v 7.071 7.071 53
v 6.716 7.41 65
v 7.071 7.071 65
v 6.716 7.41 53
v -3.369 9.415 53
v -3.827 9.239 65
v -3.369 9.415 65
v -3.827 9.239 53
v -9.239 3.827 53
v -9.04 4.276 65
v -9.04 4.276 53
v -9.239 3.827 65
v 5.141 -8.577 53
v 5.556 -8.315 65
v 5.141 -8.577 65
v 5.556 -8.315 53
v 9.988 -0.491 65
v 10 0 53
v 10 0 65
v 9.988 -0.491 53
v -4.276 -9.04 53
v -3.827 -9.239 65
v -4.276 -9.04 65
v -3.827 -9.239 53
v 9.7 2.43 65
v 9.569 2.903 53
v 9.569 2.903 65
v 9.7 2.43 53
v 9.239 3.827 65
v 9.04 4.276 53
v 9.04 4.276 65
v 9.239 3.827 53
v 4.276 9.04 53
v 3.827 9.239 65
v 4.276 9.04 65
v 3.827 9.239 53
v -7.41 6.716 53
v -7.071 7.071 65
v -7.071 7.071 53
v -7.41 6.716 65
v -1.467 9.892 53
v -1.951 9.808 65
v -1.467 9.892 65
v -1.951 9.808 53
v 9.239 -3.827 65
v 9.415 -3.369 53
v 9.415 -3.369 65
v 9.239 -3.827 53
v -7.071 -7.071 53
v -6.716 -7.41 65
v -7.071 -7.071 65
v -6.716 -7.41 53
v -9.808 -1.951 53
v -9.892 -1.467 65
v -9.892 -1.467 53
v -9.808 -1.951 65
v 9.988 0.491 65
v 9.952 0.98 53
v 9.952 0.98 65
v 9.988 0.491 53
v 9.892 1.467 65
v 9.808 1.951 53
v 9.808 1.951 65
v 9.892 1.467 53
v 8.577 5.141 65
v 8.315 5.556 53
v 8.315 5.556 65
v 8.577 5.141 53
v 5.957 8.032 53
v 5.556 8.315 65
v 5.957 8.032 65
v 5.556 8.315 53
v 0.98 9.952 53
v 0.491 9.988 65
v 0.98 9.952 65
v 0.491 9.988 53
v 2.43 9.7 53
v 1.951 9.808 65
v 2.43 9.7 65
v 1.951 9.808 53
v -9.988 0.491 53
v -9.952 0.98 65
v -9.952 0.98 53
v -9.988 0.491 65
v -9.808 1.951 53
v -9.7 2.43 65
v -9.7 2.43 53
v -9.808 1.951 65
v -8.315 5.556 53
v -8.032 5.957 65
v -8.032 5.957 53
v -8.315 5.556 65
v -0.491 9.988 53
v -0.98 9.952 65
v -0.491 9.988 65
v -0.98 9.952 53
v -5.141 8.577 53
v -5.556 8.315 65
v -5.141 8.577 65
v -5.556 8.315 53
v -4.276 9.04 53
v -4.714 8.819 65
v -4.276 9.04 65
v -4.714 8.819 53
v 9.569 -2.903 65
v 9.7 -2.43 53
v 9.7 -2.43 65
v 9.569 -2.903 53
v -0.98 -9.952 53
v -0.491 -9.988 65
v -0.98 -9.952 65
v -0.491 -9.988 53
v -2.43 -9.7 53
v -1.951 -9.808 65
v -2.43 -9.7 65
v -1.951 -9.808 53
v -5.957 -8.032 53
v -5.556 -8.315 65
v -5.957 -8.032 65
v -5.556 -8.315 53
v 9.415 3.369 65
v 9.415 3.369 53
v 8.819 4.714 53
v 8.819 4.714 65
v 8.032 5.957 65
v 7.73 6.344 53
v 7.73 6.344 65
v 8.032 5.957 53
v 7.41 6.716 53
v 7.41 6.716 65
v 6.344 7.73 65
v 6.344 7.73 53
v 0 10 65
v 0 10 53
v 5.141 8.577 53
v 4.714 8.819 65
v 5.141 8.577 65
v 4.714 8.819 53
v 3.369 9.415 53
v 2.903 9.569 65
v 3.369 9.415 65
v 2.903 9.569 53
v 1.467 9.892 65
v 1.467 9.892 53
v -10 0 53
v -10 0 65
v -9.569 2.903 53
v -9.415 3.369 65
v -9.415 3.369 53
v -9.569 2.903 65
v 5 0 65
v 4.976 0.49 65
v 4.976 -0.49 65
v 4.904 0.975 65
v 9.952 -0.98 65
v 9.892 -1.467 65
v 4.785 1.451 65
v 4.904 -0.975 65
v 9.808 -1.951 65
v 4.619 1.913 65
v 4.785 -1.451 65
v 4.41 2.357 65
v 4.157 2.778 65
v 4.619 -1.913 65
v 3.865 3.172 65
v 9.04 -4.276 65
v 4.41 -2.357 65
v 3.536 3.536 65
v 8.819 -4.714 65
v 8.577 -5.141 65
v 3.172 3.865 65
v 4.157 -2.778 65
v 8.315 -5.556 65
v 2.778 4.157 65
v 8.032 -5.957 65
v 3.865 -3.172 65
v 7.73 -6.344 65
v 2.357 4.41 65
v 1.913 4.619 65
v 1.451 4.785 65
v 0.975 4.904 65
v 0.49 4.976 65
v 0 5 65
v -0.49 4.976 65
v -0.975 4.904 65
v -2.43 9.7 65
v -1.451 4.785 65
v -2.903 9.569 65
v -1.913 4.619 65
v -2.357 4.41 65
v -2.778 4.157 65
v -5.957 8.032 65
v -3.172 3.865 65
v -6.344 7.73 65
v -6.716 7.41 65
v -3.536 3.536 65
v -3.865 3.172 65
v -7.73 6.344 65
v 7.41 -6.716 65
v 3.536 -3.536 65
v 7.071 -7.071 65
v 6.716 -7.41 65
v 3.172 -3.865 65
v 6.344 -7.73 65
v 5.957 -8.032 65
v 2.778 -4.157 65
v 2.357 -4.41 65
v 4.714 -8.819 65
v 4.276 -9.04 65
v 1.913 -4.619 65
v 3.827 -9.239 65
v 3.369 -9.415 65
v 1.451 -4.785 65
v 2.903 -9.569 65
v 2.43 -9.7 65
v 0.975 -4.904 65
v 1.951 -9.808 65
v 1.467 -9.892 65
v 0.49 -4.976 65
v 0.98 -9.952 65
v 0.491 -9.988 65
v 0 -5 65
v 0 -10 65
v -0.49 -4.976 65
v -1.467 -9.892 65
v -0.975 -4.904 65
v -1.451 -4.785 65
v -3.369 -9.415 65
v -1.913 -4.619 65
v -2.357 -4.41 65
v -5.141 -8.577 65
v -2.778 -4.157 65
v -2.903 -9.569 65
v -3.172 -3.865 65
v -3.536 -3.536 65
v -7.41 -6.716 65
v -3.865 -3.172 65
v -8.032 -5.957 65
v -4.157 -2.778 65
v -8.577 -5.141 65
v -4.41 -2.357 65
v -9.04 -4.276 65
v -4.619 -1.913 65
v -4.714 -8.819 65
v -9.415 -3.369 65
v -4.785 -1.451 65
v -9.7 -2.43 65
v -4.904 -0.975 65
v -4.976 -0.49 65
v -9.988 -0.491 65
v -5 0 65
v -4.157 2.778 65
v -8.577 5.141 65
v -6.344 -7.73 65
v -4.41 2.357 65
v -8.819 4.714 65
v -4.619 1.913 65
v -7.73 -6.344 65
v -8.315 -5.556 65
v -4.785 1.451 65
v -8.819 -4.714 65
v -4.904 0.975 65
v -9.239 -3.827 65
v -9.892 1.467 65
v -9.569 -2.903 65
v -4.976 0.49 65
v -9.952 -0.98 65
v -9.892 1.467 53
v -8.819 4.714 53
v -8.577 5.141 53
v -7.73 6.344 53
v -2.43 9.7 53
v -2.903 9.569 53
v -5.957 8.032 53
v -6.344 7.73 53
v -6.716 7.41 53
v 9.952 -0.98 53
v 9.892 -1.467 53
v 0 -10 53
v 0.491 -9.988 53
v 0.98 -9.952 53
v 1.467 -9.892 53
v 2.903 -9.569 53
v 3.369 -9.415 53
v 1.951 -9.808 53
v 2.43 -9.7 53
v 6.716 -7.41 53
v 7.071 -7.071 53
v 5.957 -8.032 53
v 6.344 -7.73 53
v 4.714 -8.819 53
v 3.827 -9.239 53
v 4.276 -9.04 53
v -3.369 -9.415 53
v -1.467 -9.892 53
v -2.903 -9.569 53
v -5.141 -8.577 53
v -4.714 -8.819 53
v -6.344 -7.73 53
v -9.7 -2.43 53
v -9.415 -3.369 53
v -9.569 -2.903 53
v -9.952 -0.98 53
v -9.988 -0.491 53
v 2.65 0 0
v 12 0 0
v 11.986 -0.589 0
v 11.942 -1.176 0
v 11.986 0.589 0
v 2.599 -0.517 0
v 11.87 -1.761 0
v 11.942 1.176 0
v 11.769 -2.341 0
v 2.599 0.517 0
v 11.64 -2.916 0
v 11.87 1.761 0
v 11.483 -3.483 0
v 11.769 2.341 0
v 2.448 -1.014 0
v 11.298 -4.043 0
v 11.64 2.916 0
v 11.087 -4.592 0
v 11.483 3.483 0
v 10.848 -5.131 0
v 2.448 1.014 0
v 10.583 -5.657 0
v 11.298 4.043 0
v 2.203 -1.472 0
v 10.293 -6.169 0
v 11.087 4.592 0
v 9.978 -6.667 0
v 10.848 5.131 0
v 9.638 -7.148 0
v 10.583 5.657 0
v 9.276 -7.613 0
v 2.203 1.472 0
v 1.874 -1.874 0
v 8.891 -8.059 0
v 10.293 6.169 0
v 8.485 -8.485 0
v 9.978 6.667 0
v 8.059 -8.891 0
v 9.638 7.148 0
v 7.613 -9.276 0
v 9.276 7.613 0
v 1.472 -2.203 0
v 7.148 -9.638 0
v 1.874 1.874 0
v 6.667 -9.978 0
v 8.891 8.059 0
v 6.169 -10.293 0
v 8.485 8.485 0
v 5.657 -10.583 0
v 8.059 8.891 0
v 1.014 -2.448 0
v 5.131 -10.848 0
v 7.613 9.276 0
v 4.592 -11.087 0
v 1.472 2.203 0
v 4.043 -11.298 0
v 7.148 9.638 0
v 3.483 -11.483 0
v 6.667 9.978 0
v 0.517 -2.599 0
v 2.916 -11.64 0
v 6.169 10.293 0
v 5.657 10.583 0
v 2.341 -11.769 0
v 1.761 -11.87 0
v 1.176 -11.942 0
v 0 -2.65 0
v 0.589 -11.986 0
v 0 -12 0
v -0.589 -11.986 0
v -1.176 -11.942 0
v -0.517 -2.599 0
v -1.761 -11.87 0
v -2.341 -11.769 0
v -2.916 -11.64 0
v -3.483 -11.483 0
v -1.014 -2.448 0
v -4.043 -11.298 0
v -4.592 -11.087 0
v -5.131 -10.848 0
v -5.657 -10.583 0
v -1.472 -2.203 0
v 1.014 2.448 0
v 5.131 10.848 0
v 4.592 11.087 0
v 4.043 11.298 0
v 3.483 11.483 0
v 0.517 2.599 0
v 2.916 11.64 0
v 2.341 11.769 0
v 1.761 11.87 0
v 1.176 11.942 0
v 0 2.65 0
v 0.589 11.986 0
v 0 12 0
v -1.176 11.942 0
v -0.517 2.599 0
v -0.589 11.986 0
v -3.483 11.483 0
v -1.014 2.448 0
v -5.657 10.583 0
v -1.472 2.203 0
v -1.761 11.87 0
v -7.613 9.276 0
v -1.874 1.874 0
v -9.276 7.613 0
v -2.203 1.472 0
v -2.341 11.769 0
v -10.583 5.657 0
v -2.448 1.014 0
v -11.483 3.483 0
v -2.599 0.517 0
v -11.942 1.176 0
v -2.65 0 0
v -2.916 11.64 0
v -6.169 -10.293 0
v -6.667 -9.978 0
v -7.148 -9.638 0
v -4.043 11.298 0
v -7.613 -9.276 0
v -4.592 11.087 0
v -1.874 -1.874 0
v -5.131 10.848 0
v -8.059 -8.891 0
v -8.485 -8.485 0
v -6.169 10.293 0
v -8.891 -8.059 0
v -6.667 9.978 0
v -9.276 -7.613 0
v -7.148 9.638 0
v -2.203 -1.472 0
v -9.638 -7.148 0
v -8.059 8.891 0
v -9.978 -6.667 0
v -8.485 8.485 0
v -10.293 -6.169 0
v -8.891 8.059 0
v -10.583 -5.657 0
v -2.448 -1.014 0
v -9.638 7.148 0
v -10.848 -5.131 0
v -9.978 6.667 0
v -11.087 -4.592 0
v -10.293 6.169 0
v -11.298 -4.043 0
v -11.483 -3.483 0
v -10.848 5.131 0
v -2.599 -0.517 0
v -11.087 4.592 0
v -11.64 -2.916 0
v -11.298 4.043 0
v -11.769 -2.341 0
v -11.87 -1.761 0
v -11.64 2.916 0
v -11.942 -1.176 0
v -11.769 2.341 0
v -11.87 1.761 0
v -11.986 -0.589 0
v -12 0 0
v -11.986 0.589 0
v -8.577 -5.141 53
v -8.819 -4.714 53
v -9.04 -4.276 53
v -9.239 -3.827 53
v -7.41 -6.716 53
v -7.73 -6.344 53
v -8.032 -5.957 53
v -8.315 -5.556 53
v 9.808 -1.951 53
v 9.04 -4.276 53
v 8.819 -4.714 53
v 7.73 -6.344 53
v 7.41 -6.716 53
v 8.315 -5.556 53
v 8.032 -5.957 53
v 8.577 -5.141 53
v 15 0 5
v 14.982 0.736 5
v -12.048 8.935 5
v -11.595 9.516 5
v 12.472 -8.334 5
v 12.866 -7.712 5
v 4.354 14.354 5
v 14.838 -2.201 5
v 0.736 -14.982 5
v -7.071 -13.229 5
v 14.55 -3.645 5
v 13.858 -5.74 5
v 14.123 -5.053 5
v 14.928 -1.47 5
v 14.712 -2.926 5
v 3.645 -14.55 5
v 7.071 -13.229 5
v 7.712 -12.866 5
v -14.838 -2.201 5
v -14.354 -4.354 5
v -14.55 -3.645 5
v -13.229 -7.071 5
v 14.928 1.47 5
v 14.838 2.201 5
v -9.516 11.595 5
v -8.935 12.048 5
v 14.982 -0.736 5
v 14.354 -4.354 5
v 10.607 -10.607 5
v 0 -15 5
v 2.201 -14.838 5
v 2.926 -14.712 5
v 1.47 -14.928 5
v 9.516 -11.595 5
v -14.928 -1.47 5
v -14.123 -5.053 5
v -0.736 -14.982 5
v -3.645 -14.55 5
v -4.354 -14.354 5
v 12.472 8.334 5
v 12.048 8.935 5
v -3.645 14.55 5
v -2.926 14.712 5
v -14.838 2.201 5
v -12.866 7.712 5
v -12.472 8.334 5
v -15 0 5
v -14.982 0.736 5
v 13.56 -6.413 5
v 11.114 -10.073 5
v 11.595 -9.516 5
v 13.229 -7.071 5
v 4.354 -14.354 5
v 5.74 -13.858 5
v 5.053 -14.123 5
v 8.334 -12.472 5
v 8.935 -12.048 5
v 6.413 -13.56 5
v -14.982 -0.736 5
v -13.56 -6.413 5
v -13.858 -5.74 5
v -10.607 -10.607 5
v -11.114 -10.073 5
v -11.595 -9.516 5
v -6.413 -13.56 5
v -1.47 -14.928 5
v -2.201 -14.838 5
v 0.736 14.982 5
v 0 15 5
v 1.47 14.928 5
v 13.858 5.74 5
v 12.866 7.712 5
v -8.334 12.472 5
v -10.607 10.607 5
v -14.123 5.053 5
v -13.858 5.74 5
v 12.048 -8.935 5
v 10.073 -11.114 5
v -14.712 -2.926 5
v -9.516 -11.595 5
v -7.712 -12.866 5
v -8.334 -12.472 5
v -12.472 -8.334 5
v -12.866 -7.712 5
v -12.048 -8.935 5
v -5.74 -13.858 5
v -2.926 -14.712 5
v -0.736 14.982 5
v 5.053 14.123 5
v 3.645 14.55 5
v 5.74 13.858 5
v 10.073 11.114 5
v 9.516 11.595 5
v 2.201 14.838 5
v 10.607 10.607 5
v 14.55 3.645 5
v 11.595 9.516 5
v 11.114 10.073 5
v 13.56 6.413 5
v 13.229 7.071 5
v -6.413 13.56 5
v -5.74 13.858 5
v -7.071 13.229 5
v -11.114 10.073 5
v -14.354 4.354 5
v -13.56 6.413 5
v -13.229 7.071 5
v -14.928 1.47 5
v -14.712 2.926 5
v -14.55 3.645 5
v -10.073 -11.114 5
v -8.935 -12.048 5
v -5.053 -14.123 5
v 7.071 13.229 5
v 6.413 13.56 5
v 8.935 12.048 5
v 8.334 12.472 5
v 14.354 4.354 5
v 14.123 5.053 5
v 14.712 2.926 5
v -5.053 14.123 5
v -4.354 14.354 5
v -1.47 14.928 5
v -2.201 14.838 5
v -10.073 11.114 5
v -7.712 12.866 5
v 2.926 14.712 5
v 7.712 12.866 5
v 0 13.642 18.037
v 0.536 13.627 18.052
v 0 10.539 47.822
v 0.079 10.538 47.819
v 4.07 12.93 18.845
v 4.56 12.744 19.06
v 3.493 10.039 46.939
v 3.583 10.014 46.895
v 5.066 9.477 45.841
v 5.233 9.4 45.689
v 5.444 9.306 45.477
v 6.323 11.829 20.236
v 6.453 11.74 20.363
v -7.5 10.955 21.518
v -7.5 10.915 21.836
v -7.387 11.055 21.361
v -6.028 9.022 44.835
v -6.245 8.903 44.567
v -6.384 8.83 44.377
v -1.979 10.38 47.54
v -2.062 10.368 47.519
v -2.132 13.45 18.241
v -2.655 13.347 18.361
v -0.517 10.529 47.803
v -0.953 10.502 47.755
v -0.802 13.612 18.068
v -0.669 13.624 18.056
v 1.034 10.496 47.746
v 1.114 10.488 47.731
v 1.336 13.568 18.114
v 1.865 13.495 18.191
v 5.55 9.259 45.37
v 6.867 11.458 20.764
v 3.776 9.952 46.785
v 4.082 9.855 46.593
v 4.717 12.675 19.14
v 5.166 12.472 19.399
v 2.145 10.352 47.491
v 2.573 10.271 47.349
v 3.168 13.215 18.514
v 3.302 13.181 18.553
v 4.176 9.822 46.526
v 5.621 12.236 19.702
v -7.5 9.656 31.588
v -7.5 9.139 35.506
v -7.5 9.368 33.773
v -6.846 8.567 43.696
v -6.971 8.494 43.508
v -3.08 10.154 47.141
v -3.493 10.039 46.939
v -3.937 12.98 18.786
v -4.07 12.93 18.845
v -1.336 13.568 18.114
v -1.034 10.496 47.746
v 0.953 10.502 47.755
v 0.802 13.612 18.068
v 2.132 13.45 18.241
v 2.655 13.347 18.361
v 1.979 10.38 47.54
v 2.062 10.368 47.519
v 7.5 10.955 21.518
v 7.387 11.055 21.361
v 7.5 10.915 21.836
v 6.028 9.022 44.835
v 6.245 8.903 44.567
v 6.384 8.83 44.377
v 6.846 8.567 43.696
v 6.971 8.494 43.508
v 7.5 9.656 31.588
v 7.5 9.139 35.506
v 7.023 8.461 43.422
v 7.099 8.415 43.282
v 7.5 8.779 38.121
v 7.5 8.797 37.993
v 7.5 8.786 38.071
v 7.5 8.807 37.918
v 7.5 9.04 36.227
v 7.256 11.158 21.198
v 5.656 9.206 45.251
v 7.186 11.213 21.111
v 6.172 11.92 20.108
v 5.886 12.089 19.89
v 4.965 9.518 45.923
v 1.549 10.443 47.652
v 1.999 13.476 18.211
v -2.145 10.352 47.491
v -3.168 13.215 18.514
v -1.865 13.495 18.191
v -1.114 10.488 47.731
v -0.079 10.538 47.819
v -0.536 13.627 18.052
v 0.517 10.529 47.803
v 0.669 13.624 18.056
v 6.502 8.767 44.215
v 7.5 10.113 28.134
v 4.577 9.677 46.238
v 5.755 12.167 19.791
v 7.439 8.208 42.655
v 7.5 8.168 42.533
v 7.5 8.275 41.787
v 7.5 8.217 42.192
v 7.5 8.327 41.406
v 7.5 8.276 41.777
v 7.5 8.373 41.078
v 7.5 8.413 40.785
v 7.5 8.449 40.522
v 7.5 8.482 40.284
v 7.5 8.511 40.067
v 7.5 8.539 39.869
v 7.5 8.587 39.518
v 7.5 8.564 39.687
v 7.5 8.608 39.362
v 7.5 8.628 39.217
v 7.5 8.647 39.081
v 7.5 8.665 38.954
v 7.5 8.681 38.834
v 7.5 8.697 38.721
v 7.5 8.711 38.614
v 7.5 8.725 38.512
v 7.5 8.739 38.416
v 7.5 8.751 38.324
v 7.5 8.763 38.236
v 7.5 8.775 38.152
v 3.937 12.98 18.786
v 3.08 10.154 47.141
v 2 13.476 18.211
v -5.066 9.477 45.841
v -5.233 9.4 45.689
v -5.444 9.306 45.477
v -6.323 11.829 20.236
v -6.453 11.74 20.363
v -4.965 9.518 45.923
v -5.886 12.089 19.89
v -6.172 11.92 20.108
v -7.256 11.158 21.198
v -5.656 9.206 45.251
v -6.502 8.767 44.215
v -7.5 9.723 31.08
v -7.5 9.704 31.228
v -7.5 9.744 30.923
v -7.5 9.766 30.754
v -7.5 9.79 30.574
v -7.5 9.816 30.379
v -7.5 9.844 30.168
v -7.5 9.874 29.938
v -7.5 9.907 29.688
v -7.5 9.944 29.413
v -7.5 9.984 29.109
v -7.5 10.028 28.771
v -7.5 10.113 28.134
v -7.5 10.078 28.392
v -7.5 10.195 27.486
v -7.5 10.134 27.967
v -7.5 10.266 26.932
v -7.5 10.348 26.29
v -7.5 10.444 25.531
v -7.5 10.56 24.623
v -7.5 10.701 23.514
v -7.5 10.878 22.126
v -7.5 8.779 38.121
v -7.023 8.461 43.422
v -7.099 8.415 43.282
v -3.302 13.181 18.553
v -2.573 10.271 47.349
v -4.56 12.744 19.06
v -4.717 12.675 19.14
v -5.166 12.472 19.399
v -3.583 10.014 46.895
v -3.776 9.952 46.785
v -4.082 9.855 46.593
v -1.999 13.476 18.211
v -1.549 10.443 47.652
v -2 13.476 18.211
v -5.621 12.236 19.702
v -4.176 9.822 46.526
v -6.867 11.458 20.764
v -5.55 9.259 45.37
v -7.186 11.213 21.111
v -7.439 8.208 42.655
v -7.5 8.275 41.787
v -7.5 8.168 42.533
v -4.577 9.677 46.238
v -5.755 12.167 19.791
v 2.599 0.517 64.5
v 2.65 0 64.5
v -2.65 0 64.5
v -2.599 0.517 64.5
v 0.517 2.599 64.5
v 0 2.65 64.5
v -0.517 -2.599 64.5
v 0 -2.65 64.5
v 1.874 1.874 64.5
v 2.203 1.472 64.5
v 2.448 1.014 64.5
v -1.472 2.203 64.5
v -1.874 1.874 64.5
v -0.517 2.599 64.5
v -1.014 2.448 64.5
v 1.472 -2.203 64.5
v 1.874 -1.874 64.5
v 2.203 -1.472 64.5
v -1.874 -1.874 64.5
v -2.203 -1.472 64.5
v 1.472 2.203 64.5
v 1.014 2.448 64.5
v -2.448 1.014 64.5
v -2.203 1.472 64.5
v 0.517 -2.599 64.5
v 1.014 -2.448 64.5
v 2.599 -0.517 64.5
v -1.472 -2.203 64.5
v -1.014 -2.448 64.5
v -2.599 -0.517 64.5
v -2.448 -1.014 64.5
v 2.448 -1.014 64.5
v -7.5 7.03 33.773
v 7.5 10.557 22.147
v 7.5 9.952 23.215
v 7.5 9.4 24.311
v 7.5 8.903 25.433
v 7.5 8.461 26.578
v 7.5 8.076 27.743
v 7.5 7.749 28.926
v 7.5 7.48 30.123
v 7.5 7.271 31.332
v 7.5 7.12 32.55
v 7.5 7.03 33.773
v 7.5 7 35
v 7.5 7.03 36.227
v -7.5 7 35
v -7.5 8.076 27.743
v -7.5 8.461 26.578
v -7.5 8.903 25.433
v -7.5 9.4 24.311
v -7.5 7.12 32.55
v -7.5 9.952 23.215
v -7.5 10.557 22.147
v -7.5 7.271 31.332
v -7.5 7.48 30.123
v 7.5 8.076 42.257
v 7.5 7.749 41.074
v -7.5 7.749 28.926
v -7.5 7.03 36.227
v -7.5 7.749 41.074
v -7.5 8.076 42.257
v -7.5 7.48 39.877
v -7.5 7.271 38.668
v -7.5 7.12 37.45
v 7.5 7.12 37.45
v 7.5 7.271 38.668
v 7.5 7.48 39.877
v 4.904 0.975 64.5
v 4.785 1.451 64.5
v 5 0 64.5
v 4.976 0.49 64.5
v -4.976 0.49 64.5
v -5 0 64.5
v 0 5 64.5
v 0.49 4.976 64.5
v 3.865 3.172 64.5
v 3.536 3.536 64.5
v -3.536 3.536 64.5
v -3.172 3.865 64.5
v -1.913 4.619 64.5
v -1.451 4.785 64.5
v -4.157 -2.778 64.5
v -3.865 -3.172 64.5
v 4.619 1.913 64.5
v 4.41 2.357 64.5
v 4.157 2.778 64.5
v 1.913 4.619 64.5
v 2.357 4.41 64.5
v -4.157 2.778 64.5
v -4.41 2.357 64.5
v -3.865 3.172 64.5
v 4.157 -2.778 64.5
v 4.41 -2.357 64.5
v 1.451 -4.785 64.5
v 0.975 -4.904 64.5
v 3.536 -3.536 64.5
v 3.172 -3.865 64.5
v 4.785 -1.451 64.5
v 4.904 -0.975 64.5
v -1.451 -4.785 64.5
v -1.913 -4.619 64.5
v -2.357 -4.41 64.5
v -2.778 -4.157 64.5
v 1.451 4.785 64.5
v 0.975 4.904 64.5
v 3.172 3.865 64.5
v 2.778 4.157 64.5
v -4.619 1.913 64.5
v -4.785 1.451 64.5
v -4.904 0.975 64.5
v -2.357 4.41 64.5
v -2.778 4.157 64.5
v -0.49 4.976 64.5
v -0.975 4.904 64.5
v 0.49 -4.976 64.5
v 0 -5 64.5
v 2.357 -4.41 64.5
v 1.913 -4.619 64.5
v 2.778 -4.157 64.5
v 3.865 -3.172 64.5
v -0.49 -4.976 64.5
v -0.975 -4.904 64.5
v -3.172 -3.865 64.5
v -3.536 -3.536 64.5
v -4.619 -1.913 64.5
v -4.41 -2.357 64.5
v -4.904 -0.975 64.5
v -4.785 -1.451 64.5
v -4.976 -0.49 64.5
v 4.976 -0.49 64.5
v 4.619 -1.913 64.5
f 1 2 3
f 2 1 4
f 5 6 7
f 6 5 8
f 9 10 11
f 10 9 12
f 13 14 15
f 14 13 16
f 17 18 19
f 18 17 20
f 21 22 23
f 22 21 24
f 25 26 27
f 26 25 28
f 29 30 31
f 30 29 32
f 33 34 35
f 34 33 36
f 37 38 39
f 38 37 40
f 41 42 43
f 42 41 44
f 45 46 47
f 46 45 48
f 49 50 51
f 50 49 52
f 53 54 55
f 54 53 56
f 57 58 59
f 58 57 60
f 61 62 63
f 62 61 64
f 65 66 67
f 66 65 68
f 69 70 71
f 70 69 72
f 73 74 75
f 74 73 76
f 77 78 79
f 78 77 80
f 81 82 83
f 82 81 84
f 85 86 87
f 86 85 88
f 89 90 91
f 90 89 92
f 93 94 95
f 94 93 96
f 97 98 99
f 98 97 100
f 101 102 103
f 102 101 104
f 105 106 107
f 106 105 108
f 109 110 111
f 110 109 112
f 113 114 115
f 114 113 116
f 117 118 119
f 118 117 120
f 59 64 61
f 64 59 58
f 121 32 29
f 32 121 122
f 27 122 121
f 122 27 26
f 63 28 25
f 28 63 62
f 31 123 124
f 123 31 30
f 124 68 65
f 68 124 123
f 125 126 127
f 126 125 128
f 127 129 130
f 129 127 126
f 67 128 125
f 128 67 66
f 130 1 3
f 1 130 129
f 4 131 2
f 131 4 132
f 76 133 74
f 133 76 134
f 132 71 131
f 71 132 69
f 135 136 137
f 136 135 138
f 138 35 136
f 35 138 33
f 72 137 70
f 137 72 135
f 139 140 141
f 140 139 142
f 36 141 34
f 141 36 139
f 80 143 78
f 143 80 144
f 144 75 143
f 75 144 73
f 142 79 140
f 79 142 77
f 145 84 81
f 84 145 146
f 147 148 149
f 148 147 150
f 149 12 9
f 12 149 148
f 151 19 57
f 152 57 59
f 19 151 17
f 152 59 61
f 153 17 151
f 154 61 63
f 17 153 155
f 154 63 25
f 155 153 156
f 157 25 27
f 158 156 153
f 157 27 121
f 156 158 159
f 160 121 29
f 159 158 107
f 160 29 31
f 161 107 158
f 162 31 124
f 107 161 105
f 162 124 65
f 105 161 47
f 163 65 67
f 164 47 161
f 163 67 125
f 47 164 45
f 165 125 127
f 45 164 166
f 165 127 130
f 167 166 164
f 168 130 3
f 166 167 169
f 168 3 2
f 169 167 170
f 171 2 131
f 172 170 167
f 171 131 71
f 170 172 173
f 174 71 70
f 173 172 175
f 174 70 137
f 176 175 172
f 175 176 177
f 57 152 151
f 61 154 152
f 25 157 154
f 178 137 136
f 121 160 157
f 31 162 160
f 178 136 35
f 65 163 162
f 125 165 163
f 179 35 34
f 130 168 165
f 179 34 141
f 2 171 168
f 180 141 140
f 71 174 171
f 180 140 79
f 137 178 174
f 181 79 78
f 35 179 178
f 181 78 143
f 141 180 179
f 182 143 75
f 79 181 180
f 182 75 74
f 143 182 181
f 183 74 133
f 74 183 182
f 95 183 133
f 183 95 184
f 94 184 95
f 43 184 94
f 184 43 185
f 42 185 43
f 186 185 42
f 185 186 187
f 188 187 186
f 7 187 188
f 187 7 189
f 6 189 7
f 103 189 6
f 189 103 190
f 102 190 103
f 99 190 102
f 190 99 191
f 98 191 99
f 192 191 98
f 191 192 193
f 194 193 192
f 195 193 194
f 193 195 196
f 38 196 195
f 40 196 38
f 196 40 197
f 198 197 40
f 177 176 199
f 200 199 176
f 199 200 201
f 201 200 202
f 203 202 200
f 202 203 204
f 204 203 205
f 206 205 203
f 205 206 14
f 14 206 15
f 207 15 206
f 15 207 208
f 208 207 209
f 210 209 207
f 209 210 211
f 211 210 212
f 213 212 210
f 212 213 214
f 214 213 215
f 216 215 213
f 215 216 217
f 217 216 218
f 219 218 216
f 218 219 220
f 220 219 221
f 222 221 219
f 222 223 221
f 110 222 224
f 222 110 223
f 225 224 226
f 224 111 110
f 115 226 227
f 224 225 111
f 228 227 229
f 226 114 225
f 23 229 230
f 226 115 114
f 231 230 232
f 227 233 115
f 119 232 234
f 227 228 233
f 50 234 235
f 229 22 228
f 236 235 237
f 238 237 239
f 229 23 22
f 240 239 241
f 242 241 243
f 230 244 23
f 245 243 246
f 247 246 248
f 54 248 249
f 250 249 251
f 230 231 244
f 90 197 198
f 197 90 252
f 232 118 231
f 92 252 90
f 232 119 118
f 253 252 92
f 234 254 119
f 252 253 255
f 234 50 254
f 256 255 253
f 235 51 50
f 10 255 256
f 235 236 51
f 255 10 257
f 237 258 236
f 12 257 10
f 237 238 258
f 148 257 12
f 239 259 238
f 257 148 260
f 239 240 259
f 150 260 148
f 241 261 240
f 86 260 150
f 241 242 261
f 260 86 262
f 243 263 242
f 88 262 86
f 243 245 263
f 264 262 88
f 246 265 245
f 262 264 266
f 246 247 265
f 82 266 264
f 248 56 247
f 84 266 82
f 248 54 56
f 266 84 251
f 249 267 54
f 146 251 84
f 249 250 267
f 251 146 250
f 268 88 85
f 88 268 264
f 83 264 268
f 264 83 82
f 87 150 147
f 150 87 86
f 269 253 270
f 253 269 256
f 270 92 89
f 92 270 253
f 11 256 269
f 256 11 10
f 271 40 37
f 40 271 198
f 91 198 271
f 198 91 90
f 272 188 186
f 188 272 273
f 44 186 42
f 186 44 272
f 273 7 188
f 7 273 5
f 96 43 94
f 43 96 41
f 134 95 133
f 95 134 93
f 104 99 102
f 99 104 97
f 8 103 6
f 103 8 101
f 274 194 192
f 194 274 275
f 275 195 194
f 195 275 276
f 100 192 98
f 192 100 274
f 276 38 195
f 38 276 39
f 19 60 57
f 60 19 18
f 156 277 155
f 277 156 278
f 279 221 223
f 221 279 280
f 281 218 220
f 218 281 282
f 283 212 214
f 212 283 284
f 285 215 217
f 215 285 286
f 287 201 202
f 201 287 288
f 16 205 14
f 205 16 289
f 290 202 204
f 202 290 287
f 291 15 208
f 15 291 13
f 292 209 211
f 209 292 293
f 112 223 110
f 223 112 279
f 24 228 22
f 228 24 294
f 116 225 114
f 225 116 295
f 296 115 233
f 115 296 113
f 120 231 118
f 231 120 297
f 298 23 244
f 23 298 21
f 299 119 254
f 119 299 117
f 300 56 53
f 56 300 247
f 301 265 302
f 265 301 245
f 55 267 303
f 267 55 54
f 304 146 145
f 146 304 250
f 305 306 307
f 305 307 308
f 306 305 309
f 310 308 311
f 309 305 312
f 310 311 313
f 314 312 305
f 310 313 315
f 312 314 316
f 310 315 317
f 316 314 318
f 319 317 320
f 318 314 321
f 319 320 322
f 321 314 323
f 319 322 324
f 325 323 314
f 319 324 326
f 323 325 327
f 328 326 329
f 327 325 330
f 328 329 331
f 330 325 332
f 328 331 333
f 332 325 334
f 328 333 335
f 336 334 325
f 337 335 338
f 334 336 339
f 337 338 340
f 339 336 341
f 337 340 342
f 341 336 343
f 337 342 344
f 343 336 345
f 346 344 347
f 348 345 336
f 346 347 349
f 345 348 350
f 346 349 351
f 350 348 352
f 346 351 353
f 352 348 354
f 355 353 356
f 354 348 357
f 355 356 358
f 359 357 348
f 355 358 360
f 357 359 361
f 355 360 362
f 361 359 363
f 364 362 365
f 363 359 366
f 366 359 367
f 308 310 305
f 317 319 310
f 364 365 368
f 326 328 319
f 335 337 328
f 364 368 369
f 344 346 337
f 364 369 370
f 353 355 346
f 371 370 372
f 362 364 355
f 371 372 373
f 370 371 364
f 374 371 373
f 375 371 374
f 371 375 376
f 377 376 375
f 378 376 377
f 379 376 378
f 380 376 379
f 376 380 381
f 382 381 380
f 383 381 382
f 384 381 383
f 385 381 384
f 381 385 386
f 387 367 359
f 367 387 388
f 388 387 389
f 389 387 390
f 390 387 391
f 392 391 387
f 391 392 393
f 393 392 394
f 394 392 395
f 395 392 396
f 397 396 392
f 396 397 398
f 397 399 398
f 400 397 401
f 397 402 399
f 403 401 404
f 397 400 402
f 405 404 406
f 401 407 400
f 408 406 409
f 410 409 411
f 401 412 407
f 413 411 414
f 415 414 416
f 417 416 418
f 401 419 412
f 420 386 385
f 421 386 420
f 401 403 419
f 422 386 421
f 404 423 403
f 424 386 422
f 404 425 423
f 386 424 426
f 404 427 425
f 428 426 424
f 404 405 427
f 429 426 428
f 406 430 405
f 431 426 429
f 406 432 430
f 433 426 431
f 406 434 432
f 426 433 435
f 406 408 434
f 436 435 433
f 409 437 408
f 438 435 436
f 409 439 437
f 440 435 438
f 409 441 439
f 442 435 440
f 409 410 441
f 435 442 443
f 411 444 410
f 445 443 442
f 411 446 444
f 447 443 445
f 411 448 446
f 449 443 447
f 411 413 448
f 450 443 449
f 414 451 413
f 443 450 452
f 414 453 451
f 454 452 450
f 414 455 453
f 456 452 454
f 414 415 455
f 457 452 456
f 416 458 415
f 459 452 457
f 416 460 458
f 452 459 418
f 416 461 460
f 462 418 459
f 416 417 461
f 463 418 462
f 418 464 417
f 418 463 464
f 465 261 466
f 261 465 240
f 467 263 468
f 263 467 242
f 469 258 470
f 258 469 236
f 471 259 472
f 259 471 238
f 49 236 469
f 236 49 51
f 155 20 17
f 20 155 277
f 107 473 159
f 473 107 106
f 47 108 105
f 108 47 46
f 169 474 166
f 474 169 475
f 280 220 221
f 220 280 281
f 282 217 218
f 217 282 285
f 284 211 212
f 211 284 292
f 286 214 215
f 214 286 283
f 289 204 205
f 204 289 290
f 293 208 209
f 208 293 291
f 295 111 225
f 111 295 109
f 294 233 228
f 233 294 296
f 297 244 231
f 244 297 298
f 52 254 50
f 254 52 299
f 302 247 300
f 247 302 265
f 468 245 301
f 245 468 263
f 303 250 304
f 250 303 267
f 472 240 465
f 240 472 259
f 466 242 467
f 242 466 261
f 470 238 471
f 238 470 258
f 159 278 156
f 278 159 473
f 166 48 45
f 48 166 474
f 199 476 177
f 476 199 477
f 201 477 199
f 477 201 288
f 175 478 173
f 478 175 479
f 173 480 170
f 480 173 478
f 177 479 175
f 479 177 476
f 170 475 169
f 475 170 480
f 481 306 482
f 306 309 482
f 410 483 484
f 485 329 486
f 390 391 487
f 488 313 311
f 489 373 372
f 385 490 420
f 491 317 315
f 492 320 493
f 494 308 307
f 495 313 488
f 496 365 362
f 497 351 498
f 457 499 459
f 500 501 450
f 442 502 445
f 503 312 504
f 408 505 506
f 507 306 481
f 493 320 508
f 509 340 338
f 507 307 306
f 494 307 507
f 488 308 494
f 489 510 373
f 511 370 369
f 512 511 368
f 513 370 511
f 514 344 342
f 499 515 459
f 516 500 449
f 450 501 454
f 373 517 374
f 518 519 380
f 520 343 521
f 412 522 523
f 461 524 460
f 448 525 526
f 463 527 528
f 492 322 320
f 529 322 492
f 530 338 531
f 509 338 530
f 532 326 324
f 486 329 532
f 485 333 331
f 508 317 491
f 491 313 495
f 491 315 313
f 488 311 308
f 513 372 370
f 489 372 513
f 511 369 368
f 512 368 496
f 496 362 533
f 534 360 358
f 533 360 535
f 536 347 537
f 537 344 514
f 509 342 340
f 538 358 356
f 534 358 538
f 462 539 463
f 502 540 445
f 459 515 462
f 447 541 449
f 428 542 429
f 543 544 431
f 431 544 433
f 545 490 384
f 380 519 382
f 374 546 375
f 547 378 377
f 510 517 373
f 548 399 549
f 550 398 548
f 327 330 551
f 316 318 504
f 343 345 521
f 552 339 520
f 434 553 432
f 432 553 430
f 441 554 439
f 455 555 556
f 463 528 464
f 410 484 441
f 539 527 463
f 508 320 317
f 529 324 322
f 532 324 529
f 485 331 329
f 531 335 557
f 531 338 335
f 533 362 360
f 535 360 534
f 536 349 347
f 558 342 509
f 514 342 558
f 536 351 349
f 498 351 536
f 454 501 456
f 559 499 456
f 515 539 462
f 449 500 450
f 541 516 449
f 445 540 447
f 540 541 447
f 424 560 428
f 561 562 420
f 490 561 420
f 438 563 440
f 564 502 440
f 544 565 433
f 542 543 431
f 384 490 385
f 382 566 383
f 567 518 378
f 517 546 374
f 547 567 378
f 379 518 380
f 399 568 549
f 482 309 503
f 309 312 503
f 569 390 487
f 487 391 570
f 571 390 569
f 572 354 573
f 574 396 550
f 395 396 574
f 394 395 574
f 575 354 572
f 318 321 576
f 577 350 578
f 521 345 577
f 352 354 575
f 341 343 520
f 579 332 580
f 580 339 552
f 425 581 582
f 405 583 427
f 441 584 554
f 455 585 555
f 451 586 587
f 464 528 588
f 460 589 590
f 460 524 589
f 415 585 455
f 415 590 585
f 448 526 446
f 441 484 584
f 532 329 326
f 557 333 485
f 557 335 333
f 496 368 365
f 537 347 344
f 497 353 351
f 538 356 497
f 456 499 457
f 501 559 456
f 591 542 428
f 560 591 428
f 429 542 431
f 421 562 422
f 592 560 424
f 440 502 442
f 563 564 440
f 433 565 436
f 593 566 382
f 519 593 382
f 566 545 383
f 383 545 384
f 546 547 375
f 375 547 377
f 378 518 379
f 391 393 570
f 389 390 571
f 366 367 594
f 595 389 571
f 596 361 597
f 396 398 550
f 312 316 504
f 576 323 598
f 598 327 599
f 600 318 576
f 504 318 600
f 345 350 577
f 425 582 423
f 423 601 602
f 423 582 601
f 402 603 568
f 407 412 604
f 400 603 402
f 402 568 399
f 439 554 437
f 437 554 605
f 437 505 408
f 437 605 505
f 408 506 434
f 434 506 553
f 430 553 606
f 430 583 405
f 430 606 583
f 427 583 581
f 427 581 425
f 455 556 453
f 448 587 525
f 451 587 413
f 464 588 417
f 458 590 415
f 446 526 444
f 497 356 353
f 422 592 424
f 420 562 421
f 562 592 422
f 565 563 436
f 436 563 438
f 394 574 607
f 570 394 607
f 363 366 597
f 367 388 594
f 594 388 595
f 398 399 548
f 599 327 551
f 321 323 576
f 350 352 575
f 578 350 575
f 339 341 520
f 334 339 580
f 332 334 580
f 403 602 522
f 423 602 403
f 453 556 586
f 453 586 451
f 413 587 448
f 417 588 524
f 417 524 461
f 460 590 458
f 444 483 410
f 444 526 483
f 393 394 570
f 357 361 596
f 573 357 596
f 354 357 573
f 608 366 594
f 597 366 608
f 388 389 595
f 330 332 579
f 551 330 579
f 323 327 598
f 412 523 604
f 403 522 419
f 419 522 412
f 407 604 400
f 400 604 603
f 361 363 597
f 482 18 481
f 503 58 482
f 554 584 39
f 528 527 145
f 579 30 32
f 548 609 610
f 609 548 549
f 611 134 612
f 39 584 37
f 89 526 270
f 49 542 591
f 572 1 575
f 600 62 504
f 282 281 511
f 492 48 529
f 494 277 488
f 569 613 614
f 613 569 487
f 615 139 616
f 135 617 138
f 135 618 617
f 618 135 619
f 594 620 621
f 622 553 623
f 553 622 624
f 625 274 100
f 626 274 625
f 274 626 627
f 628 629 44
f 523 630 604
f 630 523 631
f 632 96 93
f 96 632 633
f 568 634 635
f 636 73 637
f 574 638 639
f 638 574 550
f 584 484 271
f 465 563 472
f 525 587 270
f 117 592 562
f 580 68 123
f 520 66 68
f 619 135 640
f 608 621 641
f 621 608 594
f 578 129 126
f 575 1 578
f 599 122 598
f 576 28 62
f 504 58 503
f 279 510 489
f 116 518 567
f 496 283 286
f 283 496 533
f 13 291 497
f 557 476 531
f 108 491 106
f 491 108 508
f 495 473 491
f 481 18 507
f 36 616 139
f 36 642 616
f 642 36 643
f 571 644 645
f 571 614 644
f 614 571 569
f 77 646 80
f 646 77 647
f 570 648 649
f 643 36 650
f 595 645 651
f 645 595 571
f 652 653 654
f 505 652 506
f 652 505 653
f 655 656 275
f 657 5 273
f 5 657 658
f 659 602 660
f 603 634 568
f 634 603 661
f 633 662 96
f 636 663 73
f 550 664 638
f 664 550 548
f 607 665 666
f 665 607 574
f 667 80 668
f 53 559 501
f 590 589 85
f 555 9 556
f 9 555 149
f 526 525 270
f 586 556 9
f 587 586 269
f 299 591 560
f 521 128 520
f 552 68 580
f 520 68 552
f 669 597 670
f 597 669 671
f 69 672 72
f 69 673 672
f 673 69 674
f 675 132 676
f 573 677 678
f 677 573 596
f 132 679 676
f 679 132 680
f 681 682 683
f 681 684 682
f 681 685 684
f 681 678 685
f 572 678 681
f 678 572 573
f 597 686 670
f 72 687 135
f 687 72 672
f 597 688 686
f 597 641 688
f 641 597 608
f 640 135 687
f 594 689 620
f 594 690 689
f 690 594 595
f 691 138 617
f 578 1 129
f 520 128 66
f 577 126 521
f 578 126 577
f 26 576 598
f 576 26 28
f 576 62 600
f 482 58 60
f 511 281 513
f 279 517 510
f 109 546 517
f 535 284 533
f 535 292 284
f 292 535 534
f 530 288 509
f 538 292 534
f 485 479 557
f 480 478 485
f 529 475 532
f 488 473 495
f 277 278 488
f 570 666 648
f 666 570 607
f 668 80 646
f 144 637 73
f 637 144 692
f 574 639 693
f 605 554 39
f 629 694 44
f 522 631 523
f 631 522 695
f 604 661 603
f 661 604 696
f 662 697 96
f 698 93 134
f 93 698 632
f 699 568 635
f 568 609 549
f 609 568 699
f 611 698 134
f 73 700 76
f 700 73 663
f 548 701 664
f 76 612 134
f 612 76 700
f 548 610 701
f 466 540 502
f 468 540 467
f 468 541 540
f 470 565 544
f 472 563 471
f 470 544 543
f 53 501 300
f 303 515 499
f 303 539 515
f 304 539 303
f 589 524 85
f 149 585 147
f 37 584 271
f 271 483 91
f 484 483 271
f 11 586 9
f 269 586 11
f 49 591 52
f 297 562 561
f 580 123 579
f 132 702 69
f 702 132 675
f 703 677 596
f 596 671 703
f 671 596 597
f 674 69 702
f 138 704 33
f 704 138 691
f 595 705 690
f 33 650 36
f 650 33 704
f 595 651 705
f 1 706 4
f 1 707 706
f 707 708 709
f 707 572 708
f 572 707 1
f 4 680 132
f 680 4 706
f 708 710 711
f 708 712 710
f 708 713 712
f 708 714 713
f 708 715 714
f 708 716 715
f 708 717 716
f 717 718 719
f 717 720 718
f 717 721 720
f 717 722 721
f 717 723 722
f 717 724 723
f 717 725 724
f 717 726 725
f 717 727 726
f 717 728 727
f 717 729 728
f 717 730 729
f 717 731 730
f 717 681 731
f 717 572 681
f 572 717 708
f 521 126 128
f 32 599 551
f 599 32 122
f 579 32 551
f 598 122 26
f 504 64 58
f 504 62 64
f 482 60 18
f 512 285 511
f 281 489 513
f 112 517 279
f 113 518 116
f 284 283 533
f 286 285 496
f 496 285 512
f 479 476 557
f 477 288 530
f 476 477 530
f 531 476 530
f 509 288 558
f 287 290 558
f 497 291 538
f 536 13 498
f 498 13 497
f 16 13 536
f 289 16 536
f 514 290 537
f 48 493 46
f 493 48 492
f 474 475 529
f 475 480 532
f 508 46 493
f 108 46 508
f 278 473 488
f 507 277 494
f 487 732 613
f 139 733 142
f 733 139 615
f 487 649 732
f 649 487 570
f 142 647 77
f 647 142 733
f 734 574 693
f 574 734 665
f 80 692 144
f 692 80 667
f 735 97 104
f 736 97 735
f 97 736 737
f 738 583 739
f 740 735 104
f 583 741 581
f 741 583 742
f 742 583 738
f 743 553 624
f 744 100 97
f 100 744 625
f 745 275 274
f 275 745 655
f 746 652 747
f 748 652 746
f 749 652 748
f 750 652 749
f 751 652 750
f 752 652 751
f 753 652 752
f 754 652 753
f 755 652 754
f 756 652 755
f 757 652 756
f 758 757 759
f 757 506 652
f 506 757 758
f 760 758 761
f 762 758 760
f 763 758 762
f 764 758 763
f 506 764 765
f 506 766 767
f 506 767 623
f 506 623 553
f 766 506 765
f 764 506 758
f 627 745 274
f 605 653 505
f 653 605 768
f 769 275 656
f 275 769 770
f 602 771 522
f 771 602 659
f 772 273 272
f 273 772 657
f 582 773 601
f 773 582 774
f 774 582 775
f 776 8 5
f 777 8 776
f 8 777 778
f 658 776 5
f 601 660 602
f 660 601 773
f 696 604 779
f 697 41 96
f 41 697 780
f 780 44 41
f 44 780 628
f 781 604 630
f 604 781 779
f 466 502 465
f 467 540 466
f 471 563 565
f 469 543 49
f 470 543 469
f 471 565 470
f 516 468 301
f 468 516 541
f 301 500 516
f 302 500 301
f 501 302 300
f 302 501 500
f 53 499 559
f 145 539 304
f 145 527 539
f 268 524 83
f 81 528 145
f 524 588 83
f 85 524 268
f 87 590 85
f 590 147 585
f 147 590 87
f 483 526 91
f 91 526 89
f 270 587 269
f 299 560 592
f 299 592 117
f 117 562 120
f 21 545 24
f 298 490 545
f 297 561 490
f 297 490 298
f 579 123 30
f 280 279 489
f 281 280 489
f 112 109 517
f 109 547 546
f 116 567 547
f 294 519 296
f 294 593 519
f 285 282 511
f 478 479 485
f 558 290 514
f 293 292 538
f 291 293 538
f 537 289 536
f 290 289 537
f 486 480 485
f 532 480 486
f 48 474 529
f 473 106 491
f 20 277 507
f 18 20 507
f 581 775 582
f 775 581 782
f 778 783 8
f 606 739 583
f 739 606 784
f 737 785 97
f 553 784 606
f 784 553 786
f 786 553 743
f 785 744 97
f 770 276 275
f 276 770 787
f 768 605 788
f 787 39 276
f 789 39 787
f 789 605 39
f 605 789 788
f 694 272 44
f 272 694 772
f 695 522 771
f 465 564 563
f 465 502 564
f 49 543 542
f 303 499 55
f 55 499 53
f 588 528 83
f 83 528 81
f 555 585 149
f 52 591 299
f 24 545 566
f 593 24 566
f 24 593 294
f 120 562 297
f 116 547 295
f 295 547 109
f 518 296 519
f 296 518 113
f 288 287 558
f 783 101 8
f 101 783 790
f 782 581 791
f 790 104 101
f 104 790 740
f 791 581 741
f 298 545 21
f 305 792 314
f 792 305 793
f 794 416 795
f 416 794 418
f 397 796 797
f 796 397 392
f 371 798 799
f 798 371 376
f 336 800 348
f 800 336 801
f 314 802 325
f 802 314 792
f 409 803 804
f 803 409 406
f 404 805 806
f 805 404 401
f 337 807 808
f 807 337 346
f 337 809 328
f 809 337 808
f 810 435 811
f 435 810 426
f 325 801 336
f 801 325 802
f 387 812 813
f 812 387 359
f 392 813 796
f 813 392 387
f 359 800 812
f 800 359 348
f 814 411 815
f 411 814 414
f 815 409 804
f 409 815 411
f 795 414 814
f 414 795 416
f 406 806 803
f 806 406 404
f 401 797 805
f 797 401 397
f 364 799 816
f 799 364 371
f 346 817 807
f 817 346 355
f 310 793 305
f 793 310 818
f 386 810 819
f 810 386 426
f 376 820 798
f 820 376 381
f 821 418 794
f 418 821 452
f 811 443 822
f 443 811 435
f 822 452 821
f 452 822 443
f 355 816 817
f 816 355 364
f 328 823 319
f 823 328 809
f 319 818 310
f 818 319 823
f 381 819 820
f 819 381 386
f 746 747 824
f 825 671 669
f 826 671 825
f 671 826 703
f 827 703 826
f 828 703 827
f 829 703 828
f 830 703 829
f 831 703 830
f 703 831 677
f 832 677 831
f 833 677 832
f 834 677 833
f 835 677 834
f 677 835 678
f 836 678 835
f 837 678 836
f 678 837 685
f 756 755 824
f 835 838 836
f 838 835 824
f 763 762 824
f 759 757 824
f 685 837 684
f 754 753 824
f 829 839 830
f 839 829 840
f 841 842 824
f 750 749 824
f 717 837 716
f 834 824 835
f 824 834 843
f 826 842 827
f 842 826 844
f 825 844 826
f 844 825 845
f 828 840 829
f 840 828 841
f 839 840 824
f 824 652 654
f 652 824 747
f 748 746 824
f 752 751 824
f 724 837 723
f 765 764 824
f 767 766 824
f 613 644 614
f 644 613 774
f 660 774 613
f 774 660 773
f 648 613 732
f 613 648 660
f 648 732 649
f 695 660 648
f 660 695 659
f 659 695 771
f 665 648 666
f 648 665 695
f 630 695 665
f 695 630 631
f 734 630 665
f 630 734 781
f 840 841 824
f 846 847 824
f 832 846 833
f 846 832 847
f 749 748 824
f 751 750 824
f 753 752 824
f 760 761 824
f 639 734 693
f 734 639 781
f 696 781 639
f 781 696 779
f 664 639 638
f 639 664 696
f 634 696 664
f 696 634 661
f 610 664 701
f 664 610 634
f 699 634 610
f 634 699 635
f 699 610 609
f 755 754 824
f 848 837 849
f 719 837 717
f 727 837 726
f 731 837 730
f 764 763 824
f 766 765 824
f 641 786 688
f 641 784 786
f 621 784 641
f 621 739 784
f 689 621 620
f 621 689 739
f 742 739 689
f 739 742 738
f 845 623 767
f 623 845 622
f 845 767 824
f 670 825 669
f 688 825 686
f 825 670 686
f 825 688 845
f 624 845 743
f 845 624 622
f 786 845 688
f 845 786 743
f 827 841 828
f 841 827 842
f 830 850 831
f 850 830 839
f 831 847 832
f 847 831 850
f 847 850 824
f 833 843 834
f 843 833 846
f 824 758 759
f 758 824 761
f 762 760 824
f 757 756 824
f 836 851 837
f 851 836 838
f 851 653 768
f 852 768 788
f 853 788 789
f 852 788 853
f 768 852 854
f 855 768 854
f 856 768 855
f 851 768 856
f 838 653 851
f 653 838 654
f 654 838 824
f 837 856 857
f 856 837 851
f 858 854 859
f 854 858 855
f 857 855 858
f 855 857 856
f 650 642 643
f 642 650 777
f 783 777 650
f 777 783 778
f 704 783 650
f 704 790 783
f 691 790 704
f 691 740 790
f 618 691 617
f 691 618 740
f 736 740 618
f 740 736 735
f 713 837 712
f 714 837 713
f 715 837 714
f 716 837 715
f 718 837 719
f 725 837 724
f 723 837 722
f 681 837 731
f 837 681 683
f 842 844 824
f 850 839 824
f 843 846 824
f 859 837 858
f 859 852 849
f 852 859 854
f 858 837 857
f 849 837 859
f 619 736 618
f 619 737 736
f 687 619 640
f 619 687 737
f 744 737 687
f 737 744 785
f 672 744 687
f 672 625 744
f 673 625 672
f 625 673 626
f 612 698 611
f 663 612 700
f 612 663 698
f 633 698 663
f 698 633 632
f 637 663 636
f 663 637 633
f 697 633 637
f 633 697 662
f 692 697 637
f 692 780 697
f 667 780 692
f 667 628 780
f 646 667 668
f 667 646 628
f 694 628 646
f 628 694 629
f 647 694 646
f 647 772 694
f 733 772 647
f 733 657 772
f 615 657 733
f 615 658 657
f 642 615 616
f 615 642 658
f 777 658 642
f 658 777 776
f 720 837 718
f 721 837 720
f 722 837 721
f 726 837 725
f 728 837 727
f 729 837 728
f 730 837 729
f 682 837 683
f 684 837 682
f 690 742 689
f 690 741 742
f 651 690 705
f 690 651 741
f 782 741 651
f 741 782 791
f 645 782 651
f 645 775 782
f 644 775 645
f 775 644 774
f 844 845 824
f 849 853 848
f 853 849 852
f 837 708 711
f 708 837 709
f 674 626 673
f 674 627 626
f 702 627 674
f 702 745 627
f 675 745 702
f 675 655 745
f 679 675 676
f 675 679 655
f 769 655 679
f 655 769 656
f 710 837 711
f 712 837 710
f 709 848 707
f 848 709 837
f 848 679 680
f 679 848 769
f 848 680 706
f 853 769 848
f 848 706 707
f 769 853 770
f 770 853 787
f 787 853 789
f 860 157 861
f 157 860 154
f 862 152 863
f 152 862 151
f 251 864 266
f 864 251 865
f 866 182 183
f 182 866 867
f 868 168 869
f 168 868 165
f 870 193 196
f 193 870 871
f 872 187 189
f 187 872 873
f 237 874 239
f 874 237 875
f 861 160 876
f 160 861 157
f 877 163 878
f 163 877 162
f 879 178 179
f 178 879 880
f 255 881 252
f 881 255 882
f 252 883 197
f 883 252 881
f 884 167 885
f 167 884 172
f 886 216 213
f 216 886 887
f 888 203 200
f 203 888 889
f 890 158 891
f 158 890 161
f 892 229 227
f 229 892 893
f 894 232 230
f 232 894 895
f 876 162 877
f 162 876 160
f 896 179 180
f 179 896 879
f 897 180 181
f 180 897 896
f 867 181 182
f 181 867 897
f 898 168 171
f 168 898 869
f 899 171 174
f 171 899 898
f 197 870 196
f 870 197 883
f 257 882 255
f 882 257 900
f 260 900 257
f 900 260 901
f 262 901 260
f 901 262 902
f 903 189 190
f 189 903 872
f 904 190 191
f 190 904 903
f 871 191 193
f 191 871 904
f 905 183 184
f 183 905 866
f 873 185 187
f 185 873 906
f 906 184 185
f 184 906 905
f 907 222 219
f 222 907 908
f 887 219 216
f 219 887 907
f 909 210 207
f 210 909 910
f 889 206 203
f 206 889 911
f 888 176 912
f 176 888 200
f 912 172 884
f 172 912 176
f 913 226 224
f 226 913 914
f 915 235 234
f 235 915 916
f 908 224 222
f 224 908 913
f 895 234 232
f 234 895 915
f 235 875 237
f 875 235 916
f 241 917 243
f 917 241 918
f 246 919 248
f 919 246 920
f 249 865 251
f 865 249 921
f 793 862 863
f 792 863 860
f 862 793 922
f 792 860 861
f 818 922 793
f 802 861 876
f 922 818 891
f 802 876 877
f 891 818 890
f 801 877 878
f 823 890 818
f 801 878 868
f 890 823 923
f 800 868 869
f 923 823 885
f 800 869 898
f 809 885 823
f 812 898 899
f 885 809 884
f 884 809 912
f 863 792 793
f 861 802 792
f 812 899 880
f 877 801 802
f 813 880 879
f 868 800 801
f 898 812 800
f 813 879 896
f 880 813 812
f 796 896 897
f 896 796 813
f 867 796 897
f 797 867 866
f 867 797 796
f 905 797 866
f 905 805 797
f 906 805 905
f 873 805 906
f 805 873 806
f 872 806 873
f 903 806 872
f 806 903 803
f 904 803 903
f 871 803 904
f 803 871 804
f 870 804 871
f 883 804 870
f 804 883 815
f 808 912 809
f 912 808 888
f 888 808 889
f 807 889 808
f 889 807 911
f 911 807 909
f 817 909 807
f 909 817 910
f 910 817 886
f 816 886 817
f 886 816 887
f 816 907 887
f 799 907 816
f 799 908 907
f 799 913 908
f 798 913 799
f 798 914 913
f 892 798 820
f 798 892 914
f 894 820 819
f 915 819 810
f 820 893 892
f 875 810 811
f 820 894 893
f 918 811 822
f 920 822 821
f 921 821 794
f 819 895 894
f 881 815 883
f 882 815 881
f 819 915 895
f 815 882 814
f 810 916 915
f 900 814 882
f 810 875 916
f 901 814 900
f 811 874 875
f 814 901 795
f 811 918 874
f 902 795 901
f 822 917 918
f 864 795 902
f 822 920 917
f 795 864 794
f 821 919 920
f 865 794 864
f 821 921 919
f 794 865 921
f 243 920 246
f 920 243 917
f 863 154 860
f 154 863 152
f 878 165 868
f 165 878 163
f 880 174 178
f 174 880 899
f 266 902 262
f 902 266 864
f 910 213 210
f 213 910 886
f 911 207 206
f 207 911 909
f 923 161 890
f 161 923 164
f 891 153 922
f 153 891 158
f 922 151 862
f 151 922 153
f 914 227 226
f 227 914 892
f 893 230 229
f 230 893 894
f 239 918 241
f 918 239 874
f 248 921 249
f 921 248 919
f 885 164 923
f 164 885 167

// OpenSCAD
difference() {
    union() {
    cylinder(h=65,d=20,$fn=128);
    cylinder(h=5,d1=24,d2=30,$fn=128);
        translate([0,0,5])
    cylinder(h=48,d1=30,d2=20,$fn=128);
        
    }
    
    
    cylinder(h=70,d=5.3,$fn=32);
    translate([0,32,35])
    rotate([0,90,0])
    cylinder(h=15,d=50,center=true,$fn=128);
    
    translate([0,0,64.5])
    cylinder(d=10,h=5,$fn=64);
    
}
